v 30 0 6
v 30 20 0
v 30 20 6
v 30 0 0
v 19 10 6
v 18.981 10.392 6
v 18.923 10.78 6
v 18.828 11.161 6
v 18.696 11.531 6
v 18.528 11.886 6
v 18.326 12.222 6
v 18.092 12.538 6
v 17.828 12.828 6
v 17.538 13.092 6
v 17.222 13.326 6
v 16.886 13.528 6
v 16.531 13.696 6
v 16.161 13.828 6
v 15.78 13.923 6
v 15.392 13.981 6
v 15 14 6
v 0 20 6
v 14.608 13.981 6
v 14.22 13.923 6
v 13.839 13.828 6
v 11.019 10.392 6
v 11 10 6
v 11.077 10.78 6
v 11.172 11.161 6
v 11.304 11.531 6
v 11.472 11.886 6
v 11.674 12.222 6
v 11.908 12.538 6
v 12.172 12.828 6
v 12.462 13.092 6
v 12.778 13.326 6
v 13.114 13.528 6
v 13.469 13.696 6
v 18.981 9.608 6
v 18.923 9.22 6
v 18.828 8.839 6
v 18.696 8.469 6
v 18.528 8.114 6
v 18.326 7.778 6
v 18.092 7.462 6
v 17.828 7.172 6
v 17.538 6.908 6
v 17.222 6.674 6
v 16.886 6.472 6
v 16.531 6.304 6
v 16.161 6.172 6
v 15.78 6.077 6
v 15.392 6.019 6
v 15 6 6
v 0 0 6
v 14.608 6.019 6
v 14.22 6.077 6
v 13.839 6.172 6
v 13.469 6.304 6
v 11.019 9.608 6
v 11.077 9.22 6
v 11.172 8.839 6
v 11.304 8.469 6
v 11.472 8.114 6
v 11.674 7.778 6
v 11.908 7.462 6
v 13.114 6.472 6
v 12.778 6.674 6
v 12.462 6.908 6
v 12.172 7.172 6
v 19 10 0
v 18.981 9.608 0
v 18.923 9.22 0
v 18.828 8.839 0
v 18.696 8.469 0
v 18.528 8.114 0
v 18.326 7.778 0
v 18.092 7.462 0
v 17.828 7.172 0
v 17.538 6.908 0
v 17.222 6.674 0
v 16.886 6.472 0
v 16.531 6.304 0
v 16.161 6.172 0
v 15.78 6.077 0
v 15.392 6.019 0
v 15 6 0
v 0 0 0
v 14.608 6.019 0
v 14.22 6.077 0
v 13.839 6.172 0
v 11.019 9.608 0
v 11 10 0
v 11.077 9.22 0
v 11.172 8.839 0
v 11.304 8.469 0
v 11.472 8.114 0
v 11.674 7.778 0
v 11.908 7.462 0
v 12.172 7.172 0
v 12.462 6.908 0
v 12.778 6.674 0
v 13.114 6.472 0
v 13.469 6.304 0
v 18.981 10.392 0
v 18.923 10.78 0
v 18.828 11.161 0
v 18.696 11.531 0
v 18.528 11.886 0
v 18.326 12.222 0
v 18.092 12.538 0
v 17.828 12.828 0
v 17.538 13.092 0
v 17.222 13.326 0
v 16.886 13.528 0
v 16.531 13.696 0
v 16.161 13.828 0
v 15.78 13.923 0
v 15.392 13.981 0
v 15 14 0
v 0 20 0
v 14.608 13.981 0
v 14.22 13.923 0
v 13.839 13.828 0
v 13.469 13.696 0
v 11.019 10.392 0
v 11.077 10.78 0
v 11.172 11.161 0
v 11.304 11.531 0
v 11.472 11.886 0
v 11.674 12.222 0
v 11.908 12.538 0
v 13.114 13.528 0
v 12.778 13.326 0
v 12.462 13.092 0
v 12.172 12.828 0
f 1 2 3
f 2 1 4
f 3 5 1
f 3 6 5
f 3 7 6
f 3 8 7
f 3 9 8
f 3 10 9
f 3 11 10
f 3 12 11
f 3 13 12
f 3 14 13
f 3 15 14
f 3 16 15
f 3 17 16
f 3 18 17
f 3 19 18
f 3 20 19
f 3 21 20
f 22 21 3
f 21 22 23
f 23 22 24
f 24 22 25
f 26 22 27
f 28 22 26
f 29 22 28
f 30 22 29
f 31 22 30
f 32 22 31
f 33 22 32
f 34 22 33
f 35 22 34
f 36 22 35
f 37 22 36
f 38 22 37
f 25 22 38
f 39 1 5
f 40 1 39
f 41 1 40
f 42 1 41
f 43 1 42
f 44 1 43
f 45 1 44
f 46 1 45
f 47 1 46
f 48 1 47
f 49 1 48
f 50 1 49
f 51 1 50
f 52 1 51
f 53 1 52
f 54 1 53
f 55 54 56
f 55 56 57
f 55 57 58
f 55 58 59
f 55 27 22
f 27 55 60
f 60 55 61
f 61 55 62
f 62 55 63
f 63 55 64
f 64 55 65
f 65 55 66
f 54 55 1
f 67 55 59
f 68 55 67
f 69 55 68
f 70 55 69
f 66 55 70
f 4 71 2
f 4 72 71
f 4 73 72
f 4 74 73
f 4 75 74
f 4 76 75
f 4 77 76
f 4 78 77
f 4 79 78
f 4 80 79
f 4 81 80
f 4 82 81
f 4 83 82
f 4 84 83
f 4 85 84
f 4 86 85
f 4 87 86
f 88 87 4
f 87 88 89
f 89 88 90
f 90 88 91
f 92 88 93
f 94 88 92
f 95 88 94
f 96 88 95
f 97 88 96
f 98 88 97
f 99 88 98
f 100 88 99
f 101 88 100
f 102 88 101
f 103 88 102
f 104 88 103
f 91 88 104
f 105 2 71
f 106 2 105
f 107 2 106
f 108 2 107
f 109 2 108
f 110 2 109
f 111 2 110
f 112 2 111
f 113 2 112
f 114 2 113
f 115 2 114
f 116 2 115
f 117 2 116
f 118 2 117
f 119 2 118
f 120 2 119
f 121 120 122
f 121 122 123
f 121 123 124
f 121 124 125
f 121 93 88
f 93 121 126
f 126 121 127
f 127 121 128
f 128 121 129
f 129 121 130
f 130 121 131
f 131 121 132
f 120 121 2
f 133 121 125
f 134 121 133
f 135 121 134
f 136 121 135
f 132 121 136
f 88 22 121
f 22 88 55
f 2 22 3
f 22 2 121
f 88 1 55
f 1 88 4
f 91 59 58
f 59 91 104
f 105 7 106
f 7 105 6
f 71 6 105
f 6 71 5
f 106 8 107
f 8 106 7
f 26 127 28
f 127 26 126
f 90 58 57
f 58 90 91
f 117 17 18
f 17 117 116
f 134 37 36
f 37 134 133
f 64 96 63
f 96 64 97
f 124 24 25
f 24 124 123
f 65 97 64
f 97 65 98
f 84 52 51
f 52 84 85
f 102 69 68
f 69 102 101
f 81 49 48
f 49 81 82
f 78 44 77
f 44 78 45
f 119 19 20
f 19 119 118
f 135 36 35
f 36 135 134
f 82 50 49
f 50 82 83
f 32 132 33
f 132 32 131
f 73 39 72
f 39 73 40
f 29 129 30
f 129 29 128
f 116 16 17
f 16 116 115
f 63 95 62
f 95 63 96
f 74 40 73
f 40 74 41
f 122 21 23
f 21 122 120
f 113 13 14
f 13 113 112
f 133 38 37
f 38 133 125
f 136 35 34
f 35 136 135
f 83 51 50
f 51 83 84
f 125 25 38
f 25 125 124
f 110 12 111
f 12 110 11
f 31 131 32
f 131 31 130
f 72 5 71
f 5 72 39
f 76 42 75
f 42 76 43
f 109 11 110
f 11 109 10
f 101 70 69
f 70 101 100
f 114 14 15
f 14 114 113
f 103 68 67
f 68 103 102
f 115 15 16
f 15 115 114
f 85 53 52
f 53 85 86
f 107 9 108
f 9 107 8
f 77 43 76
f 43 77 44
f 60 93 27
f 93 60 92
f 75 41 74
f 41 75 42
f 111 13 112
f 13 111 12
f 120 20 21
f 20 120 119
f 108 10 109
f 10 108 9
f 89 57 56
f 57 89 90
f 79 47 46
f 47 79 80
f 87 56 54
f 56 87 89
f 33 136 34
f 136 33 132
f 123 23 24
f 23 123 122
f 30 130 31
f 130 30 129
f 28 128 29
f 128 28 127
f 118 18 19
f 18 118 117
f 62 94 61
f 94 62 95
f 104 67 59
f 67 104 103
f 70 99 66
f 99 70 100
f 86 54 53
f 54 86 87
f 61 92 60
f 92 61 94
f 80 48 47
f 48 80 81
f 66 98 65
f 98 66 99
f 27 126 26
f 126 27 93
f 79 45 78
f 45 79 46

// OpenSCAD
difference() {
  cube([30, 20, 6]);
  translate([15, 10, -1])
    cylinder(h=8, d=8, $fn=64);
}
